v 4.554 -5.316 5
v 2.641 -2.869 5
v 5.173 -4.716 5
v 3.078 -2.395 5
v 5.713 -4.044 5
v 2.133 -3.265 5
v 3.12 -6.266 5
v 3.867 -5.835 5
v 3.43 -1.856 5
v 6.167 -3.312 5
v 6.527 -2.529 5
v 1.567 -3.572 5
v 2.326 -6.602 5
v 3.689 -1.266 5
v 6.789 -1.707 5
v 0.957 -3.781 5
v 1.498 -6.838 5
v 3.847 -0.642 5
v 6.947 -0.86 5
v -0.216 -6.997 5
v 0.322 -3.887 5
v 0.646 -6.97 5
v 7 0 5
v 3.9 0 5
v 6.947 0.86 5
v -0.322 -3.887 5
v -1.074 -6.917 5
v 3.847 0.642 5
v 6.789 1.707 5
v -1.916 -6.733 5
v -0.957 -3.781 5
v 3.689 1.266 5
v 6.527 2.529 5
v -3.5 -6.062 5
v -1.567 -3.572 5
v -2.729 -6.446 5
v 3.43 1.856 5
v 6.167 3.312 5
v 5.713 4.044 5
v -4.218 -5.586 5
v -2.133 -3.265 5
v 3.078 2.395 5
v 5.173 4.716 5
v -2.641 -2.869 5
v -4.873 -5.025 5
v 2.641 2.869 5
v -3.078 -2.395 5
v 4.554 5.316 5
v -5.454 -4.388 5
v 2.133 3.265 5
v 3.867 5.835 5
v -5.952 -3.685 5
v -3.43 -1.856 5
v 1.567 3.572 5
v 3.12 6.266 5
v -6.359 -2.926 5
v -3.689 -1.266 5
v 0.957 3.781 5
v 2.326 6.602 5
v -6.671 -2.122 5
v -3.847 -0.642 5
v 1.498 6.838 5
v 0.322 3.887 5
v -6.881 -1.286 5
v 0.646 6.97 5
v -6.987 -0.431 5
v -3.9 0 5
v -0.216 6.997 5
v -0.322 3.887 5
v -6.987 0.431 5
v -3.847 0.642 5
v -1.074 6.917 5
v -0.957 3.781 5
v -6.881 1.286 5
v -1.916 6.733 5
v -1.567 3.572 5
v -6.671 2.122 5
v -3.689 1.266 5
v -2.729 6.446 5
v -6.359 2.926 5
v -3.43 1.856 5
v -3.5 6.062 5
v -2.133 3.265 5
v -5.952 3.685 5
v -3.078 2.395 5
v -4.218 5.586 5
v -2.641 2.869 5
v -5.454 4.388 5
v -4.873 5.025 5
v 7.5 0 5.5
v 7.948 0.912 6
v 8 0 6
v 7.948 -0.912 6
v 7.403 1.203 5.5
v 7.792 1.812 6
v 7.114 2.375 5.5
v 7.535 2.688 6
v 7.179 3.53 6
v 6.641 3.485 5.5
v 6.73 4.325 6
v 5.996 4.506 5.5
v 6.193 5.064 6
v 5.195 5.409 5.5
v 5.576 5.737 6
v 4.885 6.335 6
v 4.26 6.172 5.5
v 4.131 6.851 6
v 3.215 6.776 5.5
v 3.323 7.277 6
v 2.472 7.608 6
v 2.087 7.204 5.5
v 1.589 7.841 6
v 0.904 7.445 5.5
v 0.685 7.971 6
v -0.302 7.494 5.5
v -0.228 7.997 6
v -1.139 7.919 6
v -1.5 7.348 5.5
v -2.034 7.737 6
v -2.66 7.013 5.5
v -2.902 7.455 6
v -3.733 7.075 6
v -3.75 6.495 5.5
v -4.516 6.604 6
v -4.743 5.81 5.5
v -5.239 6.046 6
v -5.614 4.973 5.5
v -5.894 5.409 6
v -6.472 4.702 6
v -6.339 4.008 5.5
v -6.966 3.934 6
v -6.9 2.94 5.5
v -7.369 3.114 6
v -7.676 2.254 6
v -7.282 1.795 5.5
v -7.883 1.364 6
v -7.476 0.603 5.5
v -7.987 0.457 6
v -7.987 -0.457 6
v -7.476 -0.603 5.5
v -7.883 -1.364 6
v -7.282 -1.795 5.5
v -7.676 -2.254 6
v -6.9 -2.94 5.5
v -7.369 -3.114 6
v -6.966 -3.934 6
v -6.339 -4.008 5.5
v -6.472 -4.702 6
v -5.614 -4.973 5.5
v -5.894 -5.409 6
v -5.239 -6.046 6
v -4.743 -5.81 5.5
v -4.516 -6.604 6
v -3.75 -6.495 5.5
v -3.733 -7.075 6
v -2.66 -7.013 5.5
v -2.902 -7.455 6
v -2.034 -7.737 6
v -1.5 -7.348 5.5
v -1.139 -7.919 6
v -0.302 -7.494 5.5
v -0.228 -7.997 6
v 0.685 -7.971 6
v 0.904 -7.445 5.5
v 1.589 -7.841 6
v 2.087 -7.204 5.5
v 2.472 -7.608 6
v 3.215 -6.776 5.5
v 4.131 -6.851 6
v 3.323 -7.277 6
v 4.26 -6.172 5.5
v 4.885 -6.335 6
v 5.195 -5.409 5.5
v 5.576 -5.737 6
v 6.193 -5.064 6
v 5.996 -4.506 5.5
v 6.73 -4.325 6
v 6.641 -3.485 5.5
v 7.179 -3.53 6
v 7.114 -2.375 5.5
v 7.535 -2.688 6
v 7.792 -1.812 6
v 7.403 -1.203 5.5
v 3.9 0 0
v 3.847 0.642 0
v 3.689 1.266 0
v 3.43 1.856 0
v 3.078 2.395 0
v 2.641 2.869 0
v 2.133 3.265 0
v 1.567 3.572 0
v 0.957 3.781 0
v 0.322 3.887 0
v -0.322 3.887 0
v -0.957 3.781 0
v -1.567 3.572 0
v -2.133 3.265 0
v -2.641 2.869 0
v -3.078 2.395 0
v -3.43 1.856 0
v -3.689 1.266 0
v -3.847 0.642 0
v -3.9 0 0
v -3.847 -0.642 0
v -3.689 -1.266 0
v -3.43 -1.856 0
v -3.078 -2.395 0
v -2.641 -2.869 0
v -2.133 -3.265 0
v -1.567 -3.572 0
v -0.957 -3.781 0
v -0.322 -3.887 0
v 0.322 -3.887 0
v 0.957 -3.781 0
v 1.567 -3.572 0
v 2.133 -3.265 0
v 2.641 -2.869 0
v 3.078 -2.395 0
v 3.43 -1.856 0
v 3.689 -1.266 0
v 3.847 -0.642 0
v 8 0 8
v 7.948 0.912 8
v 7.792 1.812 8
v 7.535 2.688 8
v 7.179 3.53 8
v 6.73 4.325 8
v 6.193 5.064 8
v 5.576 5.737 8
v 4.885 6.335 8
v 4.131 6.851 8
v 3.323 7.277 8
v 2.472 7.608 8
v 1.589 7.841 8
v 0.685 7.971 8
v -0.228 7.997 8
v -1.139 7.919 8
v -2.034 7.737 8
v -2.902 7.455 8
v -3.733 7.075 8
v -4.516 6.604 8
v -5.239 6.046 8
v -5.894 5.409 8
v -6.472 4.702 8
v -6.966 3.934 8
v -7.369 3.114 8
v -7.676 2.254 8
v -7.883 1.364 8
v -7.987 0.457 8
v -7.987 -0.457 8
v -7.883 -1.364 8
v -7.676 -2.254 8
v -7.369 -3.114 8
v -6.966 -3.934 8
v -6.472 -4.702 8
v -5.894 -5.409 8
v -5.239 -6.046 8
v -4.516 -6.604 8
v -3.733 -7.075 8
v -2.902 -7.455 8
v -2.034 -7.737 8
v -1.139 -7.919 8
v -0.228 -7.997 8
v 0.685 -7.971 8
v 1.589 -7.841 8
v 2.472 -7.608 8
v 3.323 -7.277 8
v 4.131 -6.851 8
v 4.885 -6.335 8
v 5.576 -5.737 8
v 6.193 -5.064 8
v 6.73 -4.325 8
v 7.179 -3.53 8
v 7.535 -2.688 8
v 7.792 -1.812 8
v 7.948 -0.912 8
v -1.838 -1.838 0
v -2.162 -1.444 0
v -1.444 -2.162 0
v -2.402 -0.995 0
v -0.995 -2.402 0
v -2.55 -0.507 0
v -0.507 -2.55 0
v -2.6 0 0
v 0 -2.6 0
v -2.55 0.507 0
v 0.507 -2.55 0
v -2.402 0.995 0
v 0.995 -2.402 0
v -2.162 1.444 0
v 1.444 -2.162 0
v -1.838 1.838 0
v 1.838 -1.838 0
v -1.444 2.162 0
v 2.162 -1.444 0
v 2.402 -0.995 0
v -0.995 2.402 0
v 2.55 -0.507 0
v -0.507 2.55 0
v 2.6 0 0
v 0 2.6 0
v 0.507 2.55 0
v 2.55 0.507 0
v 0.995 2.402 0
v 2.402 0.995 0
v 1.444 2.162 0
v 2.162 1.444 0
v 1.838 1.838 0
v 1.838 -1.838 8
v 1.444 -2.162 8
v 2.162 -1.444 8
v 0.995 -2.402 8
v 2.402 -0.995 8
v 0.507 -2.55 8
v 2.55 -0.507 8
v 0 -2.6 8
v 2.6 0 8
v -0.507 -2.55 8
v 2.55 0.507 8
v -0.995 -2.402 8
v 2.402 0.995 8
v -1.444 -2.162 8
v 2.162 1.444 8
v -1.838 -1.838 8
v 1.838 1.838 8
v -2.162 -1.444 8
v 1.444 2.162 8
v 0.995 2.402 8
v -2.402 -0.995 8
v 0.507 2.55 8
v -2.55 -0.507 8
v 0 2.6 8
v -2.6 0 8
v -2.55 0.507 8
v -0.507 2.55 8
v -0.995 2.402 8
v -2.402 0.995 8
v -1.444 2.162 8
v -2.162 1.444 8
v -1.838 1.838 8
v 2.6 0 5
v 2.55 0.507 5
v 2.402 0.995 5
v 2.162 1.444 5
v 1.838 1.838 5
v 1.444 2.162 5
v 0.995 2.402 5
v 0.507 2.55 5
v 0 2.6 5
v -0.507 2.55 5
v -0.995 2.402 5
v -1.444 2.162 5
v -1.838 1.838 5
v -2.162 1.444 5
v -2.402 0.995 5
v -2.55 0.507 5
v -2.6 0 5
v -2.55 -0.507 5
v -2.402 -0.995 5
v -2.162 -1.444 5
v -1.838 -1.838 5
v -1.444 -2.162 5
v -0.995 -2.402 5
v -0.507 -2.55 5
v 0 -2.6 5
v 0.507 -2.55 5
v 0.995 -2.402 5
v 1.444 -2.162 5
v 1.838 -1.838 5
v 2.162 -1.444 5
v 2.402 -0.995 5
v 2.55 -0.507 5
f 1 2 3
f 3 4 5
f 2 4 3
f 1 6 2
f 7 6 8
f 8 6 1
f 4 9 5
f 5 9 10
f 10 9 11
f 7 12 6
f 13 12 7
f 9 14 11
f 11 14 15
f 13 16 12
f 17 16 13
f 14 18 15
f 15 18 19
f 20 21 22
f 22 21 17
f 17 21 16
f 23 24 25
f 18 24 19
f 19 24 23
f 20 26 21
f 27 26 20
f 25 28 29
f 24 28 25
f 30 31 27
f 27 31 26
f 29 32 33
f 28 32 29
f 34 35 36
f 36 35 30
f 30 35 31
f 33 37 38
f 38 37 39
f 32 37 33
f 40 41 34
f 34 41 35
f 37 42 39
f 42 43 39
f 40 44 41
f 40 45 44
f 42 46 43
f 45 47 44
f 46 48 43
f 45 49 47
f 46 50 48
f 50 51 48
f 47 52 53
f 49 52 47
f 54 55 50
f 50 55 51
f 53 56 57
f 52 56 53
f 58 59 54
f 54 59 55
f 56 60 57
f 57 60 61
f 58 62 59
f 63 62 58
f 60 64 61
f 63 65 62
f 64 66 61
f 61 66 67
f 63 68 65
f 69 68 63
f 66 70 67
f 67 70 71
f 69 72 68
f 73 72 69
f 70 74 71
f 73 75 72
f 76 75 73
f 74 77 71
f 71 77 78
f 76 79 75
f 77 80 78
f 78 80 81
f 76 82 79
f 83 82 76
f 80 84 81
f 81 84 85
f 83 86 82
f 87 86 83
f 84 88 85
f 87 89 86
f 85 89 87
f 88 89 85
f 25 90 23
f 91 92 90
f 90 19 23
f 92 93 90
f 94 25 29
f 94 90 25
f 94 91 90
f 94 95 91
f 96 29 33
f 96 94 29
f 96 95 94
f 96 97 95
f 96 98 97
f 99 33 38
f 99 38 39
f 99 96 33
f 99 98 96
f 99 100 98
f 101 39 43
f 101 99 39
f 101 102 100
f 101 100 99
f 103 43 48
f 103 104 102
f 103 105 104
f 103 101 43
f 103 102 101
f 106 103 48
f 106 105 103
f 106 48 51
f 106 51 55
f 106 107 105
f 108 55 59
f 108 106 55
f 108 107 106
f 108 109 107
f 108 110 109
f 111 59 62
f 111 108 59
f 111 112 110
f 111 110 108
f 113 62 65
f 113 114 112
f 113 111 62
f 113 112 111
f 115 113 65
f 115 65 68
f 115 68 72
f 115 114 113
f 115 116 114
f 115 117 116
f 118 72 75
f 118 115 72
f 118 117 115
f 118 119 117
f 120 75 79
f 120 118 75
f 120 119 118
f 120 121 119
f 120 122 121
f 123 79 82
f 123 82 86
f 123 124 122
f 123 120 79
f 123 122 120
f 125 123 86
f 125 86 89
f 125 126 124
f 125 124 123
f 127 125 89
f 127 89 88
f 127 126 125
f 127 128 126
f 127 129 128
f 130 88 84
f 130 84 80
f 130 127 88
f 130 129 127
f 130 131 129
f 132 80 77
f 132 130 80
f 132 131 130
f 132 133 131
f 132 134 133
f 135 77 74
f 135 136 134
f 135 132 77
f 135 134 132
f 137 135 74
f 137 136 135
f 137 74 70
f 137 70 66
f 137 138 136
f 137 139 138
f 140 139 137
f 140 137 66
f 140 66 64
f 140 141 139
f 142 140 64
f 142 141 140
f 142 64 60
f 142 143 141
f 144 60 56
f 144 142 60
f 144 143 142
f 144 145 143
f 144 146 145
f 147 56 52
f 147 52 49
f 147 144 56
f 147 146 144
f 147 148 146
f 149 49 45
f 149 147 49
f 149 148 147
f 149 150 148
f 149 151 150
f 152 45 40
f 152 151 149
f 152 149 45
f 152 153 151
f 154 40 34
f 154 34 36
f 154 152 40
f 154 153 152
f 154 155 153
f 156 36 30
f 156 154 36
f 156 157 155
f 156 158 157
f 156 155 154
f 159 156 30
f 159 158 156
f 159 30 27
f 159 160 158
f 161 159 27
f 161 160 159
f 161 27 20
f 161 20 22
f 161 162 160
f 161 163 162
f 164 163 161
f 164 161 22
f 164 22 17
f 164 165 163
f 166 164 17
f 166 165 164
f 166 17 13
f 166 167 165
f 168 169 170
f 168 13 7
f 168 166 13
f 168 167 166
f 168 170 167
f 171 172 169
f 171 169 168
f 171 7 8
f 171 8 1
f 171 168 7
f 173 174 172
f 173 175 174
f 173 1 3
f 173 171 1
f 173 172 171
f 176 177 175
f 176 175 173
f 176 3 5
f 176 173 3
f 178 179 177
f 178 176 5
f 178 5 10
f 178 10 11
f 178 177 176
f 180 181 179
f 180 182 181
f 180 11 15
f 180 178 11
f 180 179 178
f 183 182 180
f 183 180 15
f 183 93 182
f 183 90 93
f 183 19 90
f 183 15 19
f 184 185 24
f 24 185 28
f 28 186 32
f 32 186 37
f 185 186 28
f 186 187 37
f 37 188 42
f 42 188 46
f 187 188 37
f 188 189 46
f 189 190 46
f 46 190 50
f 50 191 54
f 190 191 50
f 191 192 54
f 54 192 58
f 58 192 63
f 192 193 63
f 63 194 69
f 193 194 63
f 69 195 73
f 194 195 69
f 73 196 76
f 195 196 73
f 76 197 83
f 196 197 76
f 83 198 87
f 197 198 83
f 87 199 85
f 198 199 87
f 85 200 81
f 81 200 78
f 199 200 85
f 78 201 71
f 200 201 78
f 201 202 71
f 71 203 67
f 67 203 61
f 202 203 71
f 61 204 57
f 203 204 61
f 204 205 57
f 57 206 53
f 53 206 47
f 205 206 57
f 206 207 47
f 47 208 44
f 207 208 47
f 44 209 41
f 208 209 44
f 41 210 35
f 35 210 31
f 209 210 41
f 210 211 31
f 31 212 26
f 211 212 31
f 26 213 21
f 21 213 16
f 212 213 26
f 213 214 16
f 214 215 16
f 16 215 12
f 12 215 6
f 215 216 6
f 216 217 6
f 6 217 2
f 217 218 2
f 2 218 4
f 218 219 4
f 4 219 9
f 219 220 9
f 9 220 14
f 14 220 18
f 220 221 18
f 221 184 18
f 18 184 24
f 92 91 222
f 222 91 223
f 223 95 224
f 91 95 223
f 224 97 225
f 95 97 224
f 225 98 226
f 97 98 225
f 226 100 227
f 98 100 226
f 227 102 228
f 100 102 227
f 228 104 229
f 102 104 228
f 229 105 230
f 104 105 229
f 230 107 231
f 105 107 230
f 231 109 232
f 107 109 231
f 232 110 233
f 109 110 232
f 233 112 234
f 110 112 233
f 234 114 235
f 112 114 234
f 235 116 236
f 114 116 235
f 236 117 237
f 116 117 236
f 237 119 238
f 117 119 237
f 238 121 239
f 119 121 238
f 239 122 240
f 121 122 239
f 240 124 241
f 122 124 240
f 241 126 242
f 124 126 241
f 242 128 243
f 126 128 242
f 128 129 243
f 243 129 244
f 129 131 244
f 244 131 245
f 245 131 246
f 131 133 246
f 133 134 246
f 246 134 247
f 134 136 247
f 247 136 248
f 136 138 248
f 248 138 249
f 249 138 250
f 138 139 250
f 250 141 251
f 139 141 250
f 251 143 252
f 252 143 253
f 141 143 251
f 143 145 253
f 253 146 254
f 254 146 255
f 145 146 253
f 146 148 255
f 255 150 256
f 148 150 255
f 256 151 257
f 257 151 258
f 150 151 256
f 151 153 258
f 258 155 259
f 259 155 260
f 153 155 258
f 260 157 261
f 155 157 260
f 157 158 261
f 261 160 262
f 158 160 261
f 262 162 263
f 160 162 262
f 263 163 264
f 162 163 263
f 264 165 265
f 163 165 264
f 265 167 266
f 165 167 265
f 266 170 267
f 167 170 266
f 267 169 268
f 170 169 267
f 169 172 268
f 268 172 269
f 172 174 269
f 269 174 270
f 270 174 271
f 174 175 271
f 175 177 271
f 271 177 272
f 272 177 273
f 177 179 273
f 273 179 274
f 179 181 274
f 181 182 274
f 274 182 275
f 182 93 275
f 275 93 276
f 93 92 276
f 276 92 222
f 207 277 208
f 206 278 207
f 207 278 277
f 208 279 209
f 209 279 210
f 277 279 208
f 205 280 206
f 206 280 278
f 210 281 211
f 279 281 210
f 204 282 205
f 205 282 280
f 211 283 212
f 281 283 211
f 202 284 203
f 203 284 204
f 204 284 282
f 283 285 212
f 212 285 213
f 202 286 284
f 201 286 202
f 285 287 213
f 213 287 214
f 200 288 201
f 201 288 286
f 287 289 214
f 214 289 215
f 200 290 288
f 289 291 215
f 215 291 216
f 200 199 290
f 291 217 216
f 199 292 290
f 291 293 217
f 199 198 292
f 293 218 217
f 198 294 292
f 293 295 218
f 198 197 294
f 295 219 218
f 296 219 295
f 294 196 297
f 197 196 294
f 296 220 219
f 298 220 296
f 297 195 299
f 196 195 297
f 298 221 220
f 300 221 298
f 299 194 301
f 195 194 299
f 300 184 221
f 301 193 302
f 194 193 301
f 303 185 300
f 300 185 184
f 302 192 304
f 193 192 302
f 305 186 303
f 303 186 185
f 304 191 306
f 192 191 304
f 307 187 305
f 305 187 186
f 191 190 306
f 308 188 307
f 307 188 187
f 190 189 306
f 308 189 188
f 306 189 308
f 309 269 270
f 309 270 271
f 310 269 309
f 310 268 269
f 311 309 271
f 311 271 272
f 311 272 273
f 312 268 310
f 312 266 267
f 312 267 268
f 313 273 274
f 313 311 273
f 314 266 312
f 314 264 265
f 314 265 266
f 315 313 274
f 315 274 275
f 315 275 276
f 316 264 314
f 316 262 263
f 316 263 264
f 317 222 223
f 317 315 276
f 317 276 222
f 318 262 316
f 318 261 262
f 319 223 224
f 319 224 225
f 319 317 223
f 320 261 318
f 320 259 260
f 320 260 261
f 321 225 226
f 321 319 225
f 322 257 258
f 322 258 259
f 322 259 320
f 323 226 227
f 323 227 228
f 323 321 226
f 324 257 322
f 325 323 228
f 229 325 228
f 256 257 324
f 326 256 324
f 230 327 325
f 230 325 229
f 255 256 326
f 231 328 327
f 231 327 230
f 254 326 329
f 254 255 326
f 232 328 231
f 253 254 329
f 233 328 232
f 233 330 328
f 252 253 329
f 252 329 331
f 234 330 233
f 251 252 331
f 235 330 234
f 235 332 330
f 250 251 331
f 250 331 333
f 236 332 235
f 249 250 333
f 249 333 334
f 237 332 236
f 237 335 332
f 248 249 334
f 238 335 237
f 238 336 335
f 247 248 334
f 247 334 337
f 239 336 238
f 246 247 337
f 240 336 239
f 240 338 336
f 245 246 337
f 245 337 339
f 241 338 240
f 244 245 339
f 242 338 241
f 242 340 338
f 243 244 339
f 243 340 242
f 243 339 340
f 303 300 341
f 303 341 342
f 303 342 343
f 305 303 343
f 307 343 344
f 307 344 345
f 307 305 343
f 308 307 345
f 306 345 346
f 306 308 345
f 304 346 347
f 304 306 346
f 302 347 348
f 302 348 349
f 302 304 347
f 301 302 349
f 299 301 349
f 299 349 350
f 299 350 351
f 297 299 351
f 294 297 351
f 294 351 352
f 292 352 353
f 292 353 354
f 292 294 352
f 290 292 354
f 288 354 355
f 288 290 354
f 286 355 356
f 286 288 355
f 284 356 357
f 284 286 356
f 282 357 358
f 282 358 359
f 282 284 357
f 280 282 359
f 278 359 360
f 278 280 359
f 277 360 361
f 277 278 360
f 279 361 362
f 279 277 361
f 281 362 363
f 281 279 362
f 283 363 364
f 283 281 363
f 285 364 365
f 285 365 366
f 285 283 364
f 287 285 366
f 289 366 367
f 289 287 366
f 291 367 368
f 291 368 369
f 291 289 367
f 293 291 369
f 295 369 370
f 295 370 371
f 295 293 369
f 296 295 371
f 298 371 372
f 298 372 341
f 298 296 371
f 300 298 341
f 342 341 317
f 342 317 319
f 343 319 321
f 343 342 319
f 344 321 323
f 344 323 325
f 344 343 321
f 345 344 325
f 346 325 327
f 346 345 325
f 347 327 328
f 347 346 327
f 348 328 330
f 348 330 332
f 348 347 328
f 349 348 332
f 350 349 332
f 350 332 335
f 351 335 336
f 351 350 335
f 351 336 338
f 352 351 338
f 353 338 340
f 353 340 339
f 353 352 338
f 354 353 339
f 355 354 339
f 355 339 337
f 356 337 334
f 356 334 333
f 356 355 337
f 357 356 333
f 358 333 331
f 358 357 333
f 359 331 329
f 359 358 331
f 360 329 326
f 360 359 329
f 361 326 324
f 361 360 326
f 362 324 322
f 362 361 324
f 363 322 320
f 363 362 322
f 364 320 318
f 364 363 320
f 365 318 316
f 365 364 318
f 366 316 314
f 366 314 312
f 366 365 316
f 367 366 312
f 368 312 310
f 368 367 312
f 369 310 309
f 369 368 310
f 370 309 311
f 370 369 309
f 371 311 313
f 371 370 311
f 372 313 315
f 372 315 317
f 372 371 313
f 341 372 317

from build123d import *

# Parameters (mm, degrees)
SKETCH_R      = 3.9
SKETCH_R_2    = 2.6
PAD_DEPTH     = 5
SKETCH001_R   = 8
SKETCH001_R_2 = 2.6
PAD001_DEPTH  = 3
CHAMFER_SIZE  = 1


with BuildPart() as part:
    # Sketch → Pad (new body)
    with BuildSketch(Plane.XY):
        Circle(SKETCH_R)
        Circle(SKETCH_R_2, mode=Mode.SUBTRACT)
    extrude(amount=PAD_DEPTH)

    # Sketch001 (on Face4 of Pad) → Pad001 (join)
    with BuildSketch(Plane.XY.offset(5)):
        Circle(SKETCH001_R)
        Circle(SKETCH001_R_2, mode=Mode.SUBTRACT)
    extrude(amount=PAD001_DEPTH)

    # Chamfer
    chamfer_edges = [part.edges().sort_by_distance(p)[0] for p in [
        (-8, 0, 5),
    ]]
    chamfer(chamfer_edges, length=CHAMFER_SIZE)


solid = part.part
